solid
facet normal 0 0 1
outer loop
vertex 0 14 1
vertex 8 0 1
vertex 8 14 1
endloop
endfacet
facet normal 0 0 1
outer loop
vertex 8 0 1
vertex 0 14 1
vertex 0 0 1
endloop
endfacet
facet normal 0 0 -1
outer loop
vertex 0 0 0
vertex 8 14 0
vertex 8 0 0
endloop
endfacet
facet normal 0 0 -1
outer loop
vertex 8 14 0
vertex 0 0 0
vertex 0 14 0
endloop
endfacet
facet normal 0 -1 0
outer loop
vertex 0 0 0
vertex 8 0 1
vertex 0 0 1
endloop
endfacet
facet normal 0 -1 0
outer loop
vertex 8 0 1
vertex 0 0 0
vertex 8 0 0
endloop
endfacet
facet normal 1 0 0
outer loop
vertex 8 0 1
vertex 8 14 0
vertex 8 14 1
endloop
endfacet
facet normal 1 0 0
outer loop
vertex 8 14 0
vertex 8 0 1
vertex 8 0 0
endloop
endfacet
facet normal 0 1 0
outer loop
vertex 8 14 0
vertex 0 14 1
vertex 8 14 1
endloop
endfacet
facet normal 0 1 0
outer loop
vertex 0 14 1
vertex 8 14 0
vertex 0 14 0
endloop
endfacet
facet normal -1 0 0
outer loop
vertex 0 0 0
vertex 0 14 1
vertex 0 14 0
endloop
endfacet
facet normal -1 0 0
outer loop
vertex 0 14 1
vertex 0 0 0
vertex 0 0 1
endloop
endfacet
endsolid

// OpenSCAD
/* Warning, this is a very basic generator with a lot of approximation 
input data : [TSOP, W6X, 8x14mm, 32, , B, C04-00174B]
generated by com.zoubworld.electronics.cad.model3d.Basic
Date : Sun Feb 15 10:50:48 CET 2026
*/

//body
color("black")
translate([0,0,0])
cube([8.0,14.0,1.0], center=false);
